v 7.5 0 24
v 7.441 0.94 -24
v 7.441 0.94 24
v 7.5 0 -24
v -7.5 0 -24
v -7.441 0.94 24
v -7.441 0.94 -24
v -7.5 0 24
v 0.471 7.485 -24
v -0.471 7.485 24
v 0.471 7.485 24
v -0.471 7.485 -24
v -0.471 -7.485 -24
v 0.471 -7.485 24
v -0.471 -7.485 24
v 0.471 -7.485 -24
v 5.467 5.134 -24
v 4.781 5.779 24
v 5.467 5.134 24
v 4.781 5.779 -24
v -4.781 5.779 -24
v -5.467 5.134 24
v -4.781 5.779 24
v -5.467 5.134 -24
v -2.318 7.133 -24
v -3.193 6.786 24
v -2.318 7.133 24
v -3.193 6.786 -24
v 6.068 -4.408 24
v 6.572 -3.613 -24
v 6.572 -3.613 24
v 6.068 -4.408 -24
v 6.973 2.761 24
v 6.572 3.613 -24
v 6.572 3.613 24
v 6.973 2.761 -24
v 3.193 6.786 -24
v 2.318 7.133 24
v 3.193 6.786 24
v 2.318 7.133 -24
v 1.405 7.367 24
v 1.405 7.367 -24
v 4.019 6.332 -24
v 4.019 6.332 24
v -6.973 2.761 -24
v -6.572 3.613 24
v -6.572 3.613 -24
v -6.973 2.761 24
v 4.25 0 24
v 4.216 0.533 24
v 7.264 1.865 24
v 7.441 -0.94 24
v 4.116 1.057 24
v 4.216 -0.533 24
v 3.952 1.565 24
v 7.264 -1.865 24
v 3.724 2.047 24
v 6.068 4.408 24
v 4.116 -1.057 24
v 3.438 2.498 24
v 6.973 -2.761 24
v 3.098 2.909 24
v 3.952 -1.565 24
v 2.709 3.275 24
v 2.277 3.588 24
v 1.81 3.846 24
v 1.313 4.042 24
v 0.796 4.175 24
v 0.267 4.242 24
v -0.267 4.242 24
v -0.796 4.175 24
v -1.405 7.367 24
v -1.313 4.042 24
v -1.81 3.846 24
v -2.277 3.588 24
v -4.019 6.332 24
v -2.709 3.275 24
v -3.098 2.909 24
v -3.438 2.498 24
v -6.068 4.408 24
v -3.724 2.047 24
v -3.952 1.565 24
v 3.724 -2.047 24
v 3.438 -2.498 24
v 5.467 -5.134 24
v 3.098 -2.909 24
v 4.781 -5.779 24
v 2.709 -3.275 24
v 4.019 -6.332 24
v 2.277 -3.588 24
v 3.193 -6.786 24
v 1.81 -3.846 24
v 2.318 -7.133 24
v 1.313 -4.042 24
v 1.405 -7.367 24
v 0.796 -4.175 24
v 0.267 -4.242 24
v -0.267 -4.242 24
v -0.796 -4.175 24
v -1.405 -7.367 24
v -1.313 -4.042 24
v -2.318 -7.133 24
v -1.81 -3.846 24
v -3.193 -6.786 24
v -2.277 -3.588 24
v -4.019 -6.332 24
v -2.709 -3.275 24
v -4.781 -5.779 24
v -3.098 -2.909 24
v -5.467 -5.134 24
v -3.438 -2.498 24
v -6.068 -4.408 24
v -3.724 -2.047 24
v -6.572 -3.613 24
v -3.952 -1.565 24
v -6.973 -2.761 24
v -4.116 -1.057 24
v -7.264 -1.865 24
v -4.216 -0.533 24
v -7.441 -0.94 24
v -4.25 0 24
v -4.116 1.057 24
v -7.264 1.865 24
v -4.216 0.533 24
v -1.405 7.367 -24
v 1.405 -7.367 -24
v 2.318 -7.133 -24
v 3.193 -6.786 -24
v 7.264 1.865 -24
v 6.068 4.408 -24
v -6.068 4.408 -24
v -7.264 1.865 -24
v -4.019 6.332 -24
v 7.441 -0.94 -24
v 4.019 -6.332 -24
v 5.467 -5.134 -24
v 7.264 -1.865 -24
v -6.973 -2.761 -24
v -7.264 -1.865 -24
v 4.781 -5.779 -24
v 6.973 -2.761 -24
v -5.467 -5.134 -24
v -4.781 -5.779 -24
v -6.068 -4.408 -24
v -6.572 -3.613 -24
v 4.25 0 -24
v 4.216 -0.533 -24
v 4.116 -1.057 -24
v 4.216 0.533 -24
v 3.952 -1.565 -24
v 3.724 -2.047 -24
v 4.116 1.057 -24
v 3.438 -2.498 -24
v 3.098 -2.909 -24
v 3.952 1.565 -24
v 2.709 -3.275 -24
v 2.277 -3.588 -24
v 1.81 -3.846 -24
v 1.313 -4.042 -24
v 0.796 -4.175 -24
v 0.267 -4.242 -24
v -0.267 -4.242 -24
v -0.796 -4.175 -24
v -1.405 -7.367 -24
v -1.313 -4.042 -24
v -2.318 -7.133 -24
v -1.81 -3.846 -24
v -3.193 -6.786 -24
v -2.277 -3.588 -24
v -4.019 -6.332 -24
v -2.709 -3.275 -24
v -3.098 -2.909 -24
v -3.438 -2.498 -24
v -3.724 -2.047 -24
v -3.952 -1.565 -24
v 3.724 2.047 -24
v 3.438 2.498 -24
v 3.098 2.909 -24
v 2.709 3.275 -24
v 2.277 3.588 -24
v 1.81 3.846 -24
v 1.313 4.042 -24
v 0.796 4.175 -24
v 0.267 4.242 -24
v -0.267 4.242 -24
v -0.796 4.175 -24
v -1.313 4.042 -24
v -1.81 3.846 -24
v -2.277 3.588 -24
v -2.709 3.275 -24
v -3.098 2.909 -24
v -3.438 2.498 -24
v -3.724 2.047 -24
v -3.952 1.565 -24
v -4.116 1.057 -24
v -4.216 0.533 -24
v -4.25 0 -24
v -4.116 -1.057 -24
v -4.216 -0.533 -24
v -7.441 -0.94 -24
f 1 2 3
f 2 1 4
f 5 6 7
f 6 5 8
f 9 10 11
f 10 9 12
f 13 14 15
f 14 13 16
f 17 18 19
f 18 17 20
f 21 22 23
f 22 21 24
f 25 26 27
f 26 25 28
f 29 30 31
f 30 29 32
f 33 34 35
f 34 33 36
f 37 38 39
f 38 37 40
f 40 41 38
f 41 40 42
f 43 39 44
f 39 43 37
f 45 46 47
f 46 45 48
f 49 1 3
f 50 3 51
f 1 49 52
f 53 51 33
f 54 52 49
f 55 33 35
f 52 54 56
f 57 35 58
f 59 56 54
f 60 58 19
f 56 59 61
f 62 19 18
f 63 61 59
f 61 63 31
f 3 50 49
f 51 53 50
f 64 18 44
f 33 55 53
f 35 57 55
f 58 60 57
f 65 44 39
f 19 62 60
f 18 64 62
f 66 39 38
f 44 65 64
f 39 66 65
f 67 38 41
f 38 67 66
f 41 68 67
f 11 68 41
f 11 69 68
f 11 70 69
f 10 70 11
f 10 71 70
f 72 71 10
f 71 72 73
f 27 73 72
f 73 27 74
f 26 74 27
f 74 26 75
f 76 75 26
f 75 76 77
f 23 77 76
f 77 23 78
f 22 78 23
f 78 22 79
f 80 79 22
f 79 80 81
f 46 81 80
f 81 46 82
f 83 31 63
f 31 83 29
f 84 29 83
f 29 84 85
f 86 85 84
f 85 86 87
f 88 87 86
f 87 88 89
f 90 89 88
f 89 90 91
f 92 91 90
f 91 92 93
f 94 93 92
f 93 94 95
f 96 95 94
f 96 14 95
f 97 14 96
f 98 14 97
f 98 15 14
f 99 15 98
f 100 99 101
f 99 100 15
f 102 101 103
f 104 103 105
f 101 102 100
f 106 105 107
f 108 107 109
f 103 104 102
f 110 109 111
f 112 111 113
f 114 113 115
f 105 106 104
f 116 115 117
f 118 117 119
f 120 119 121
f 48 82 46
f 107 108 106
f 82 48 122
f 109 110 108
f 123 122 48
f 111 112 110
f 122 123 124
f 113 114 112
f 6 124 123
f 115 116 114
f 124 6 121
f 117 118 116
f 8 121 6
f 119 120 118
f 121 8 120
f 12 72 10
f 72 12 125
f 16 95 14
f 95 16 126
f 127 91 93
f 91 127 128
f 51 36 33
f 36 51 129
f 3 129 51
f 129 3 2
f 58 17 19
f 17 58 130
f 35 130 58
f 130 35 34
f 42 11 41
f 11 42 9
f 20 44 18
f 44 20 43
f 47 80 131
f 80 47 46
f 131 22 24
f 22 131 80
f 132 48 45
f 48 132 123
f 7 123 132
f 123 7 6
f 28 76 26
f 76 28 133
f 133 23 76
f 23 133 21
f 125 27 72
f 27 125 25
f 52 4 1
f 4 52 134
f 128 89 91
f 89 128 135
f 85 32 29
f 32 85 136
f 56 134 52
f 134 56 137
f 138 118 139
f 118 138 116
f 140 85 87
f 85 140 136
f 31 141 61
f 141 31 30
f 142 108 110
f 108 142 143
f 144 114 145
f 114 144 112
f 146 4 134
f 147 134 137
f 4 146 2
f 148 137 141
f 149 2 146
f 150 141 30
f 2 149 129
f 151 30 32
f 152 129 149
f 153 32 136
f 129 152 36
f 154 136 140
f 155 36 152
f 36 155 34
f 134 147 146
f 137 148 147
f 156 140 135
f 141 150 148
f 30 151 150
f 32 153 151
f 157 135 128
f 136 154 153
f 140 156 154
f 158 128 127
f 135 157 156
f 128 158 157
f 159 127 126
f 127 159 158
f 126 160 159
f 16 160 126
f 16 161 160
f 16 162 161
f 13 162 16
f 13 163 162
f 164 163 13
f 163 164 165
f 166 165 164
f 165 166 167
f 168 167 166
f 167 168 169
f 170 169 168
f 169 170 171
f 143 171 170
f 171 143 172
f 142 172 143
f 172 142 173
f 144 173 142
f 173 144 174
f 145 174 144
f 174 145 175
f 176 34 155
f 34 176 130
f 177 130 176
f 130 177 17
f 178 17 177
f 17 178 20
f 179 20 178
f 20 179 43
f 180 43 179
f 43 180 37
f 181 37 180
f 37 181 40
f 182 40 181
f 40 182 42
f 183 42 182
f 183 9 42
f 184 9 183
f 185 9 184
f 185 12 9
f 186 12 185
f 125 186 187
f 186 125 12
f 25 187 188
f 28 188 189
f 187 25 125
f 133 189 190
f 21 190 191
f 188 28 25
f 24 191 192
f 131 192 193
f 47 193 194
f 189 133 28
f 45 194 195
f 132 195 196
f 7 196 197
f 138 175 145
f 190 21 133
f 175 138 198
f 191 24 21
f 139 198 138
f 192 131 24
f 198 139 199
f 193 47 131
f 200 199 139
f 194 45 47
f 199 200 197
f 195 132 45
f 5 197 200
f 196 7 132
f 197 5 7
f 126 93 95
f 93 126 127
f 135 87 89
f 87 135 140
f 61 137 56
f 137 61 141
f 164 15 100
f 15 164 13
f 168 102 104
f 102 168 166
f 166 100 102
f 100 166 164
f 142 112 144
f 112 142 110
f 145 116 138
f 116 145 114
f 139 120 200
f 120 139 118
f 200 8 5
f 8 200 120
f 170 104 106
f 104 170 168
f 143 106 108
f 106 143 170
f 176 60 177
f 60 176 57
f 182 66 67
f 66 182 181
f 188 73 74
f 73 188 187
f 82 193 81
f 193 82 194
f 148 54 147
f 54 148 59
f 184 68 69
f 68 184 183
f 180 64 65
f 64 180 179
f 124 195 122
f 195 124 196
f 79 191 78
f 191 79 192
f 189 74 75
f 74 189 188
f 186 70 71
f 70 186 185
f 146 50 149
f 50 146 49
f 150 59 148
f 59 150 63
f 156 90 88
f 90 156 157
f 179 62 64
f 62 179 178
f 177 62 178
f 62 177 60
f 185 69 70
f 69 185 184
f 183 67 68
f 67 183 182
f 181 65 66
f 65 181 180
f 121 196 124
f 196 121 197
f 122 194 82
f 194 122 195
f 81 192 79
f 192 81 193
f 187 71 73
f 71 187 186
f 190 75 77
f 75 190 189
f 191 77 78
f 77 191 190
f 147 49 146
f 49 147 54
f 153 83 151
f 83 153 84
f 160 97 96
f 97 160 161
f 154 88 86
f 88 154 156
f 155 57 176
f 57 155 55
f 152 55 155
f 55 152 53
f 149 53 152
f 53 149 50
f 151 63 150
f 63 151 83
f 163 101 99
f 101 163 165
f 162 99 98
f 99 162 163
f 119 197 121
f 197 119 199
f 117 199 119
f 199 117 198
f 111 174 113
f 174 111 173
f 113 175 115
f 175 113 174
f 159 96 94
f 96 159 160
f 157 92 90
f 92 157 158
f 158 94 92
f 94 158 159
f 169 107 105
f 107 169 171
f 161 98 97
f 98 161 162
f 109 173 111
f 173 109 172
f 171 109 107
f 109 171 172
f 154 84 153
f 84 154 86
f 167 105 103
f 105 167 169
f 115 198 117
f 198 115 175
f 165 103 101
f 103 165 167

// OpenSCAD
$fn = 50;


difference() {
	union() {
		translate(v = [0, 0, -24.0000000000]) {
			cylinder(h = 48, r = 7.5000000000);
		}
	}
	union() {
		translate(v = [0, 0, -100.0000000000]) {
			cylinder(h = 200, r = 4.2500000000);
		}
	}
}
